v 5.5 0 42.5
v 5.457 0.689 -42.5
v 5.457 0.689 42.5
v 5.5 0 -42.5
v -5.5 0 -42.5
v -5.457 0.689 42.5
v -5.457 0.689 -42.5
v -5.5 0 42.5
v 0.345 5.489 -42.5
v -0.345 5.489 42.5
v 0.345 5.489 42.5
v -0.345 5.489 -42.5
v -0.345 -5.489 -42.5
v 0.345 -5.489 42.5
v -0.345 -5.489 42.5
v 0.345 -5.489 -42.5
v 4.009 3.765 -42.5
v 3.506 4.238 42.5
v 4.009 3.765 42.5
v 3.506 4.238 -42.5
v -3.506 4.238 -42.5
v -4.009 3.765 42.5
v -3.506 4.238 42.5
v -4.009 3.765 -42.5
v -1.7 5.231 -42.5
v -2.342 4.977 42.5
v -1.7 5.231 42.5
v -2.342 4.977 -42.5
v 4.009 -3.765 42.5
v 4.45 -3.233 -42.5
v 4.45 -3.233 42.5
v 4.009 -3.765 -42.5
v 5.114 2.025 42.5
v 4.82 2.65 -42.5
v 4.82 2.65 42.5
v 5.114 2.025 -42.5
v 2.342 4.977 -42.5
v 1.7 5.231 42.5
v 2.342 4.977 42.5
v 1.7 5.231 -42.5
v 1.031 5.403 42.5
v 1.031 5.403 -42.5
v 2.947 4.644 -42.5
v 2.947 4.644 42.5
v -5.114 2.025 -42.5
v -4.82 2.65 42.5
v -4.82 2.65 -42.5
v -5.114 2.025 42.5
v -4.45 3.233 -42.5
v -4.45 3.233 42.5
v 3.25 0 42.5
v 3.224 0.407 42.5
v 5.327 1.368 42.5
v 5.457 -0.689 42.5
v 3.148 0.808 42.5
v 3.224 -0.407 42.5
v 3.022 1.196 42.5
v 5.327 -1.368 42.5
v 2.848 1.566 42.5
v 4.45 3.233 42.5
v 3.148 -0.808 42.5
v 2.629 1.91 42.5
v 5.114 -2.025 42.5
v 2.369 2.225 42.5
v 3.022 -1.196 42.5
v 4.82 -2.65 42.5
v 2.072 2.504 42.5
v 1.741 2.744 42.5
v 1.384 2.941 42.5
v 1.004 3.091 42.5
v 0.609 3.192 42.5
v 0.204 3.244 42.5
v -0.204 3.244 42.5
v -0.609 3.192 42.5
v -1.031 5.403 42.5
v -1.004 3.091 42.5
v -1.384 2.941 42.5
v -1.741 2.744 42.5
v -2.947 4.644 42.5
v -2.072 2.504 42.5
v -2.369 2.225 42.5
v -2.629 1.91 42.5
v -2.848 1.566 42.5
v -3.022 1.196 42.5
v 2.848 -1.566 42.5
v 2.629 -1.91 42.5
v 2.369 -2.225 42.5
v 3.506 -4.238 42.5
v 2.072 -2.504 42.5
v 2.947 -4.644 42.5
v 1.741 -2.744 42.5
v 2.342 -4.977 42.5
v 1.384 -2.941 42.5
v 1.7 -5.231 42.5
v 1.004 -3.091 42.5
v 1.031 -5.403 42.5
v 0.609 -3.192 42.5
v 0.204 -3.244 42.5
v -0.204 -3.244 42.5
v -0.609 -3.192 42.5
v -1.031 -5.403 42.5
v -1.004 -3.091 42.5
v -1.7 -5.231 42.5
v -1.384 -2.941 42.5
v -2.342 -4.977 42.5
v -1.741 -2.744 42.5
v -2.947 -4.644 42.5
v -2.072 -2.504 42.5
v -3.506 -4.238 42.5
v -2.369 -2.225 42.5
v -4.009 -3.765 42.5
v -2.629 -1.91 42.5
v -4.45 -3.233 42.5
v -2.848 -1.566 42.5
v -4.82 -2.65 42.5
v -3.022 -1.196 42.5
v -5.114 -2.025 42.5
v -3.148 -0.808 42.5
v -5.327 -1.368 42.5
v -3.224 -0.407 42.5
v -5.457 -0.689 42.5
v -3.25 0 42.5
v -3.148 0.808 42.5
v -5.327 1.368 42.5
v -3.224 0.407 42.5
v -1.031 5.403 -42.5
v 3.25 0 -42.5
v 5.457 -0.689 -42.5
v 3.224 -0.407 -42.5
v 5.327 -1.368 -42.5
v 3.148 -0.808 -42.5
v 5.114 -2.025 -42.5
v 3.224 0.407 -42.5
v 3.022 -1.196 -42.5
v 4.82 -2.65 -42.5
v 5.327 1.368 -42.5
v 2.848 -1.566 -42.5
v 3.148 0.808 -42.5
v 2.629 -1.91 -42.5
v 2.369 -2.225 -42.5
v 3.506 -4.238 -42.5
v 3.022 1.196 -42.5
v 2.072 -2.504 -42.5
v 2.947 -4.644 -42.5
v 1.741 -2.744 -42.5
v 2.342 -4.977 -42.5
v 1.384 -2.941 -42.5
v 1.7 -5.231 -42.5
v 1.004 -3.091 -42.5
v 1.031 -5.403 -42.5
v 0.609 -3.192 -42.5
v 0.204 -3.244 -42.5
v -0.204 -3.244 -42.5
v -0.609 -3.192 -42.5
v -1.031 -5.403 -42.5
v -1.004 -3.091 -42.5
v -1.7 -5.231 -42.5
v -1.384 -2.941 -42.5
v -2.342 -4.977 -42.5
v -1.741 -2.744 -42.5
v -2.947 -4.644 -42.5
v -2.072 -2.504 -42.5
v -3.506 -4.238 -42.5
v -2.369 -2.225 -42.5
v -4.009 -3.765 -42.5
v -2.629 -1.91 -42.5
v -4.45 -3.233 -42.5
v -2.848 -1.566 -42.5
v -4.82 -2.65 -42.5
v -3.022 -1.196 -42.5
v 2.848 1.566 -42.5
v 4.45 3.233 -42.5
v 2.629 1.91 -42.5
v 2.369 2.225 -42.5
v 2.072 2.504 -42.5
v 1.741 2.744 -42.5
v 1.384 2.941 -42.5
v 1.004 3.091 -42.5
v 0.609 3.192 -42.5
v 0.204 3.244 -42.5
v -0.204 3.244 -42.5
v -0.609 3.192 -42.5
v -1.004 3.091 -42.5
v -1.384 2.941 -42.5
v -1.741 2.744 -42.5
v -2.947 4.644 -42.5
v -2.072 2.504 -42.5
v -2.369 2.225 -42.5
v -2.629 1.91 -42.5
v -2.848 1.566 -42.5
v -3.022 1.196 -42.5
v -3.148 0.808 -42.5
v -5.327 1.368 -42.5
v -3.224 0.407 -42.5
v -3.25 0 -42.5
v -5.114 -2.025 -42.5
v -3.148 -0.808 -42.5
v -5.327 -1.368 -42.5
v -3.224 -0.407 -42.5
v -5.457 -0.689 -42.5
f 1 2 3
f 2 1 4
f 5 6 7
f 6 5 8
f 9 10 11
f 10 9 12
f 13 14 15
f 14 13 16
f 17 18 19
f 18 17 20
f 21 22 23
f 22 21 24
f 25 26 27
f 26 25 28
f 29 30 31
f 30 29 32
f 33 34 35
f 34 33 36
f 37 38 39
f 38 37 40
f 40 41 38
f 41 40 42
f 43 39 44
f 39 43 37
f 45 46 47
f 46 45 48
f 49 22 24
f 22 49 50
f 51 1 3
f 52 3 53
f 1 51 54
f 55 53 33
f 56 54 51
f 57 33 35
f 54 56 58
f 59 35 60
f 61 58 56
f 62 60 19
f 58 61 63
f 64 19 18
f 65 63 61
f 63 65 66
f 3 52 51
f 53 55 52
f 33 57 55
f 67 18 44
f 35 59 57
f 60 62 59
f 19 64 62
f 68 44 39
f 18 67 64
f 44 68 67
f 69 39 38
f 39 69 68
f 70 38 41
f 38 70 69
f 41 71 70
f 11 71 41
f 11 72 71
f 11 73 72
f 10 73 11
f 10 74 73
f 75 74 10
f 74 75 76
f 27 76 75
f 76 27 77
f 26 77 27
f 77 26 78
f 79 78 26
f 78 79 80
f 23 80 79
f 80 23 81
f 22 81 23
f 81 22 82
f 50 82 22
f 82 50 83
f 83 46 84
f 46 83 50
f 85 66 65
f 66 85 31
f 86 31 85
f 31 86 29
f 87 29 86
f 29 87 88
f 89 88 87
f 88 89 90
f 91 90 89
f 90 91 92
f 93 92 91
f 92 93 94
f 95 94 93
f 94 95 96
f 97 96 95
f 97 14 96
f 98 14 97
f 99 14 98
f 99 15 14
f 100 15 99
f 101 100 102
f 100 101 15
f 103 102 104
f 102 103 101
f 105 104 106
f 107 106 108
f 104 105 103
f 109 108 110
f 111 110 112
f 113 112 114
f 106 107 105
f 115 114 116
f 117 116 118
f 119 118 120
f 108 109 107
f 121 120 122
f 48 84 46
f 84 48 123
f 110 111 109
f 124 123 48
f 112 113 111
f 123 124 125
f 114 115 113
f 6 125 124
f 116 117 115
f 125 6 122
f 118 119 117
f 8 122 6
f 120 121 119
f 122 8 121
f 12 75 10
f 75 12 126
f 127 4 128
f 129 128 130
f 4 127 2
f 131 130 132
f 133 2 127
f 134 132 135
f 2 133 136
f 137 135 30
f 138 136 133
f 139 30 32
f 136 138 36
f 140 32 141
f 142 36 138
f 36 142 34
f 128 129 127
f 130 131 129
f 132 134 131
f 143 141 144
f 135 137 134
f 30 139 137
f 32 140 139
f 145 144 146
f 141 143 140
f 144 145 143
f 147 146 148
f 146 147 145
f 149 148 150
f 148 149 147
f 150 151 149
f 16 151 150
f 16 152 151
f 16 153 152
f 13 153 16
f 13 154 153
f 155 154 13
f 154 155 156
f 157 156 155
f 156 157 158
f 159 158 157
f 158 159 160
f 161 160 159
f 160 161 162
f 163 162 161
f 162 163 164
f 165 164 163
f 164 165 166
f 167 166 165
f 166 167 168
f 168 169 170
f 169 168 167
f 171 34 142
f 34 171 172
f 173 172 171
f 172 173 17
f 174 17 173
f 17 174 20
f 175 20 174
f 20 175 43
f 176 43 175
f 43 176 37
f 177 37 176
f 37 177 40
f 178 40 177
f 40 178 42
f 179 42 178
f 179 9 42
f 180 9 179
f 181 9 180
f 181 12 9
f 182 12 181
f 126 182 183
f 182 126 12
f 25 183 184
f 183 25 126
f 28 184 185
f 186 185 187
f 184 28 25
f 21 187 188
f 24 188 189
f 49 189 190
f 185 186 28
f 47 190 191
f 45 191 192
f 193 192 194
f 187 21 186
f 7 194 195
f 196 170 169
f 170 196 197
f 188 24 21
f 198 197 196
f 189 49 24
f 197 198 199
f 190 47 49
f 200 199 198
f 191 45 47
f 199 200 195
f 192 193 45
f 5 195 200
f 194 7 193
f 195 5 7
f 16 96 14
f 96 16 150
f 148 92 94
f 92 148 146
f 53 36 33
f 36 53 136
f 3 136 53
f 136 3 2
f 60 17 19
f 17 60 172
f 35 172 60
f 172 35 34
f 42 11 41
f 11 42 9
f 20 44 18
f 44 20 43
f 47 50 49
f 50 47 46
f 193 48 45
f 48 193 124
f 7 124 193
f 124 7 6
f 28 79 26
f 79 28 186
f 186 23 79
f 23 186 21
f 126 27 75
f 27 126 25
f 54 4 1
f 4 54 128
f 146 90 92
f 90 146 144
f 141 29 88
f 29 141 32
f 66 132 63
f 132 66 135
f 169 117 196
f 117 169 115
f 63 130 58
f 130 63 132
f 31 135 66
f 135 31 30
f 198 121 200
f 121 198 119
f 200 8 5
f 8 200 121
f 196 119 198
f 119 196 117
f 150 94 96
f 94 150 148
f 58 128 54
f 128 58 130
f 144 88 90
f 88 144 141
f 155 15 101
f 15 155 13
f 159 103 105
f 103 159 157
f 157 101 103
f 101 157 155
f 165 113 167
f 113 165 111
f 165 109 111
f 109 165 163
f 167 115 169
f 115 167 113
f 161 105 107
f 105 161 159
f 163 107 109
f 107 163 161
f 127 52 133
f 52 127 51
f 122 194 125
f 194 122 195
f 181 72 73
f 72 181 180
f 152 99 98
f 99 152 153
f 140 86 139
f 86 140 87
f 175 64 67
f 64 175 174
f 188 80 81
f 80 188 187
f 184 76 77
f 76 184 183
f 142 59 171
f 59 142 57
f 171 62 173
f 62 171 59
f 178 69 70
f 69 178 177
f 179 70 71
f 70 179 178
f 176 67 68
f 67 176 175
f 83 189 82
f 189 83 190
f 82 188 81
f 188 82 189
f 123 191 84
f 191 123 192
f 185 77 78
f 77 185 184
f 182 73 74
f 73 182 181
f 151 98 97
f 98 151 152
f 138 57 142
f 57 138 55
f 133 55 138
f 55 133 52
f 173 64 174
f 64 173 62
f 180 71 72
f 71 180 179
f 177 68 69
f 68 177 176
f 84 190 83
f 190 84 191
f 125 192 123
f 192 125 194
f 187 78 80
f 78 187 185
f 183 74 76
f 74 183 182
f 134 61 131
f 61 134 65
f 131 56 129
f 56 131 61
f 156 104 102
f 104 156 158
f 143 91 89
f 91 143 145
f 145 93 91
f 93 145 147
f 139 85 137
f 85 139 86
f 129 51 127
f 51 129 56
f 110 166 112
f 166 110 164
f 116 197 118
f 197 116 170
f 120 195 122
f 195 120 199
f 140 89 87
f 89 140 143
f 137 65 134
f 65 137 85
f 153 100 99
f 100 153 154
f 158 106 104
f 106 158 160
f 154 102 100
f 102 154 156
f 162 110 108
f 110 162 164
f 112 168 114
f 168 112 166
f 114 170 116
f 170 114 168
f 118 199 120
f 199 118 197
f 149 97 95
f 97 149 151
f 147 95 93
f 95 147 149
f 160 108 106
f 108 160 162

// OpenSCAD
$fn = 50;


difference() {
	union() {
		translate(v = [0, 0, -42.5000000000]) {
			cylinder(h = 85, r = 5.5000000000);
		}
	}
	union() {
		translate(v = [0, 0, -100.0000000000]) {
			cylinder(h = 200, r = 3.2500000000);
		}
	}
}
